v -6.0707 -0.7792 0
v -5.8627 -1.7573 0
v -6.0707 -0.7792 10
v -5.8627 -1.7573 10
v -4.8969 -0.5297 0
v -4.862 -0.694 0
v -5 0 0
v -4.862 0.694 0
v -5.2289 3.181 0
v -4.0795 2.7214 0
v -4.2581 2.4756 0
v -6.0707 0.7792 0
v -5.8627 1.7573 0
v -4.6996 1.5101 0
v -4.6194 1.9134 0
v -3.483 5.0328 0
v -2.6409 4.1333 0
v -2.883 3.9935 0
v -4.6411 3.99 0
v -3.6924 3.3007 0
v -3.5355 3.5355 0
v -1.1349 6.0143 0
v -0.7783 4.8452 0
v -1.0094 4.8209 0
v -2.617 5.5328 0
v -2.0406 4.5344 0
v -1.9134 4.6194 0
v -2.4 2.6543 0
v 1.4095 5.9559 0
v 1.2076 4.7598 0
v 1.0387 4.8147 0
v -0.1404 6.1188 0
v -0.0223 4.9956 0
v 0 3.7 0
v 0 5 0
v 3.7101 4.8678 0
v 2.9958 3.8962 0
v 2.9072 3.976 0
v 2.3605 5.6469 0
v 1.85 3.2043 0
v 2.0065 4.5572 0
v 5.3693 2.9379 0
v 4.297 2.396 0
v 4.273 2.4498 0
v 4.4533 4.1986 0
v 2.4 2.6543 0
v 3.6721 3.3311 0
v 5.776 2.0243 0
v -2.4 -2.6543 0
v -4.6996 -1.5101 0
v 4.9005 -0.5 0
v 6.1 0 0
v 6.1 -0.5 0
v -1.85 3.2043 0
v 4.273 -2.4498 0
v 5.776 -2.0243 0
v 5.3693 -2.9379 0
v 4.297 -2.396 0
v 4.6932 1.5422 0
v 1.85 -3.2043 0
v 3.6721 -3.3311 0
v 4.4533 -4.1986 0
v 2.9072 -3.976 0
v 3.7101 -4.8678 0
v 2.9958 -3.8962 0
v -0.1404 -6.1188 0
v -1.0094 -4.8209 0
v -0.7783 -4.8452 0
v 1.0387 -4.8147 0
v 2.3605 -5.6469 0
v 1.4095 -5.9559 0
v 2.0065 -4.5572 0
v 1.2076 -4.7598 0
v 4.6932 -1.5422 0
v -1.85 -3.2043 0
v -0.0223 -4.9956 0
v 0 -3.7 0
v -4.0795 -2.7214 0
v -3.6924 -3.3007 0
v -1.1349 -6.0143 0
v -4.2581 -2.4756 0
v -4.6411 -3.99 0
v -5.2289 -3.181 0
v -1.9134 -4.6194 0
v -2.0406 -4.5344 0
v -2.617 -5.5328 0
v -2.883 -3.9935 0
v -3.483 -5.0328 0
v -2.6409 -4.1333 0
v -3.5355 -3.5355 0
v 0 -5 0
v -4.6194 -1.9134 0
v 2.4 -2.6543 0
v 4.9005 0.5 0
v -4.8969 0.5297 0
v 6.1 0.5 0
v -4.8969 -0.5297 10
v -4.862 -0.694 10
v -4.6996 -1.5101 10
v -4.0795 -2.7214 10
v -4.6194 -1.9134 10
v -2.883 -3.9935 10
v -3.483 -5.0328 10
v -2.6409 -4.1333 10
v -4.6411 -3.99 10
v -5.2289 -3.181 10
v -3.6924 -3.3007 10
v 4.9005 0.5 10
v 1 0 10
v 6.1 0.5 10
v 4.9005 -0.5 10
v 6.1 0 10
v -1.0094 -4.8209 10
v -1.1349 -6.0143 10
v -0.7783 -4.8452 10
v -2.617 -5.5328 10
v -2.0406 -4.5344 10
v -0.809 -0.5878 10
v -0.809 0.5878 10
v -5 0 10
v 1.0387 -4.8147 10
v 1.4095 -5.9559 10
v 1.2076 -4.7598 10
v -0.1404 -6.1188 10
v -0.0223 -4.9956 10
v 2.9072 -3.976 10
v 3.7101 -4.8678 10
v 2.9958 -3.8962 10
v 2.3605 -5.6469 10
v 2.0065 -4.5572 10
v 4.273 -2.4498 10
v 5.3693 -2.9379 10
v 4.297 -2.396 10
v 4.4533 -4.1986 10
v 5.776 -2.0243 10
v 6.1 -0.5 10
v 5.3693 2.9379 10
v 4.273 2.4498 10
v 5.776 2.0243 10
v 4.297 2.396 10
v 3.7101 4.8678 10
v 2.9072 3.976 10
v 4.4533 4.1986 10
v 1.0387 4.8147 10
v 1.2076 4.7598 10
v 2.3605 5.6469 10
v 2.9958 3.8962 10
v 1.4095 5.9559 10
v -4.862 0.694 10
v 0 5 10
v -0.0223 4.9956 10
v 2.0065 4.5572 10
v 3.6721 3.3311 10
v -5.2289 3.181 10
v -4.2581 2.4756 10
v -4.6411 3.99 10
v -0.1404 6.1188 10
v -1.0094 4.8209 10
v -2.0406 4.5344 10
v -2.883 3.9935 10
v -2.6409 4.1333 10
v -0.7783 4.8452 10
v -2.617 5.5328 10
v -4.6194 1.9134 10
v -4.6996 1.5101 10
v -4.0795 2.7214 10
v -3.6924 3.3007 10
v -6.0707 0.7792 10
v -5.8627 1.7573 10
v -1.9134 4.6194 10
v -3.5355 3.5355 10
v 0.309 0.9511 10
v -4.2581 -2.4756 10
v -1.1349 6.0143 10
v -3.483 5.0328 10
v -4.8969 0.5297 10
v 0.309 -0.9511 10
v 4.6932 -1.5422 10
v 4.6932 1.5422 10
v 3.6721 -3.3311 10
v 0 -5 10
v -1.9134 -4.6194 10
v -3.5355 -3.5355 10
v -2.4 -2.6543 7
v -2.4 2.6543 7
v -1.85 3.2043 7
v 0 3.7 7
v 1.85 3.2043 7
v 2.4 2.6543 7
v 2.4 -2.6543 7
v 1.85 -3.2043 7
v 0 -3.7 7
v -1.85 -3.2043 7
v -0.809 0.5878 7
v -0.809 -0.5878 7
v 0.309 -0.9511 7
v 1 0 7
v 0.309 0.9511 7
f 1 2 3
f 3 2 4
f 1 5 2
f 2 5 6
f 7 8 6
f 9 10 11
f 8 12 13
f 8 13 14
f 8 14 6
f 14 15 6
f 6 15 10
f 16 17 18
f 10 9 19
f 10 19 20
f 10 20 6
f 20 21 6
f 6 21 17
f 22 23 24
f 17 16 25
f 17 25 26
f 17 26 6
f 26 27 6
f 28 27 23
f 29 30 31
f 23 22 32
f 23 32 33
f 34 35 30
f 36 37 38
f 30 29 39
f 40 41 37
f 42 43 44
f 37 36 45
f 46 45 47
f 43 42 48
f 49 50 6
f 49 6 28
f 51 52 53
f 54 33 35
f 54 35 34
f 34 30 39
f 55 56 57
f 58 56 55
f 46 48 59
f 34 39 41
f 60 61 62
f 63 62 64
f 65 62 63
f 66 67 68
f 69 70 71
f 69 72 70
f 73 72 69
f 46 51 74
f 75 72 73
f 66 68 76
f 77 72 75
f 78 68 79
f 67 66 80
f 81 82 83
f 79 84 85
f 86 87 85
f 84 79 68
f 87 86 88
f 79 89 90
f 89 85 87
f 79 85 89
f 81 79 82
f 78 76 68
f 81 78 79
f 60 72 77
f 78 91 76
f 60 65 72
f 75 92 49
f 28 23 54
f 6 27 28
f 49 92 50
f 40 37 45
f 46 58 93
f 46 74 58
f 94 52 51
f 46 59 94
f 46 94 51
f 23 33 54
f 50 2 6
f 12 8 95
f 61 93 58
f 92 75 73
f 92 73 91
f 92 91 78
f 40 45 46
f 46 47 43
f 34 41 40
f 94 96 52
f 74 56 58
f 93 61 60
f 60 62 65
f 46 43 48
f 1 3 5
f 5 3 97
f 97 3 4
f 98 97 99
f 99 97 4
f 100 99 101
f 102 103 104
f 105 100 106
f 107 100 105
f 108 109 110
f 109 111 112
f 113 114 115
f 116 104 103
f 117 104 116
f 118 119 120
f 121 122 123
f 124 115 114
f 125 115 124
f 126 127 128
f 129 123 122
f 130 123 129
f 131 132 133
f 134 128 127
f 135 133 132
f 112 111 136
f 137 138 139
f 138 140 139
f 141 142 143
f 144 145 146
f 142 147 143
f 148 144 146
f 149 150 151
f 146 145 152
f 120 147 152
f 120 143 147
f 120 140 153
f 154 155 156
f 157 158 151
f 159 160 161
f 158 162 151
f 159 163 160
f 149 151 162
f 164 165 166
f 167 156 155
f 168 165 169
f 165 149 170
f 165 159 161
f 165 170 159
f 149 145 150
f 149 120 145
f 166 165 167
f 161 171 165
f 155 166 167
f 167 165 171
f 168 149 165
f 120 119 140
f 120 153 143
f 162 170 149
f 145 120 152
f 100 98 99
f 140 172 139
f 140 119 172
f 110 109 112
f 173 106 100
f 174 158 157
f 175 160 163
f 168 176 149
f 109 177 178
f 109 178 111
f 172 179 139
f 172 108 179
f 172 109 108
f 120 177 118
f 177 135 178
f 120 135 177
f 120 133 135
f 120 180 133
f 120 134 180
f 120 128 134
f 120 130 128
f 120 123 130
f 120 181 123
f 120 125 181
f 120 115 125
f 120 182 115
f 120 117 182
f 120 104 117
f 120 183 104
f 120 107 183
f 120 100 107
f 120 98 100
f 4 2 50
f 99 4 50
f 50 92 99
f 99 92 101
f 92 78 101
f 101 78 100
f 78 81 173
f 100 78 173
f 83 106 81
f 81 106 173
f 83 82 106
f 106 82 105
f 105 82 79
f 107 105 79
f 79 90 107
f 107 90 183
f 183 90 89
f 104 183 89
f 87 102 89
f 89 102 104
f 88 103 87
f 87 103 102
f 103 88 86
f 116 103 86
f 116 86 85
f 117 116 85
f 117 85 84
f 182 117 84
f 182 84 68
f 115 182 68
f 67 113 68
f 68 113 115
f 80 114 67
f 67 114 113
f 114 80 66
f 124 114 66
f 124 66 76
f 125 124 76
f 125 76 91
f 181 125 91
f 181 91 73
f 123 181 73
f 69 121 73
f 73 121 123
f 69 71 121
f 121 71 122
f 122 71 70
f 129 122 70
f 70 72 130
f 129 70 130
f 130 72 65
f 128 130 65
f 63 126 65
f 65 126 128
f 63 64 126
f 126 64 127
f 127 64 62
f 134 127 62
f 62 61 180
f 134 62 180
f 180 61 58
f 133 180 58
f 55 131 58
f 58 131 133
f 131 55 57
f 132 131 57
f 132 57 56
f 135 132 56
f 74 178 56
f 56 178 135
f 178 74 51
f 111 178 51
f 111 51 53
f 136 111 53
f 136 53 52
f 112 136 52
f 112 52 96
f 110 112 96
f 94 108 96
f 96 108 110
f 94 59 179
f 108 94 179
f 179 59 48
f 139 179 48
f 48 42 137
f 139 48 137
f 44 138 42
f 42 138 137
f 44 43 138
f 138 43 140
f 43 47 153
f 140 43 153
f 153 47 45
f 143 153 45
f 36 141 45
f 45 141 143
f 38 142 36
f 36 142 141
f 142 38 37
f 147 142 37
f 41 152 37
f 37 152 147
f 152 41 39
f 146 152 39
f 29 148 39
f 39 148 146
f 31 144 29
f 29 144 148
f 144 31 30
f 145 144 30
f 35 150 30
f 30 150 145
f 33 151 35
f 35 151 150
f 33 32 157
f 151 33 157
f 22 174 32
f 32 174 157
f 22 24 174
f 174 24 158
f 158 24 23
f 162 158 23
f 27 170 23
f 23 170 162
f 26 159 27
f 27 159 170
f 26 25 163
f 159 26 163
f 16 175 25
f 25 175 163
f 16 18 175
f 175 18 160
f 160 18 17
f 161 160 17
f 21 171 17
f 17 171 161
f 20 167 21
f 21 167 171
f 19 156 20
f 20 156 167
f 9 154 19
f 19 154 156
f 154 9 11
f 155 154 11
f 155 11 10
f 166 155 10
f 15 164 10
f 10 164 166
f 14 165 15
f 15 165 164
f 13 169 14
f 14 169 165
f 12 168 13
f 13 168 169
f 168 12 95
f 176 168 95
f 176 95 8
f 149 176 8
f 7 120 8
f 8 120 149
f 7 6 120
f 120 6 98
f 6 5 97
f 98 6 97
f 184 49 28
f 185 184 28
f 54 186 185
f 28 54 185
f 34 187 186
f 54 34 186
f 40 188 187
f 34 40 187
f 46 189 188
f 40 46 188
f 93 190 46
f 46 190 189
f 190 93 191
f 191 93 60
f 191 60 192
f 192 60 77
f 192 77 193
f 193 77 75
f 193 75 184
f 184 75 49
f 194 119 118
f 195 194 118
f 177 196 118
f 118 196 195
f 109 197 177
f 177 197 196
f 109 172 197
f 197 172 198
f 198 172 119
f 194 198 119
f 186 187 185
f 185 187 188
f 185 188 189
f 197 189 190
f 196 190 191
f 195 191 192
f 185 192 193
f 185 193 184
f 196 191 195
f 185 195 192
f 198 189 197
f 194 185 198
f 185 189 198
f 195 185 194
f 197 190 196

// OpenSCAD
motor_gear();

module motor_gear(){
difference(){
gear();
motor_shaft();
cylinder(h=10,r=1);
}//end diff
}//end part


module gear() {
union(){
cylinder(r=5,h=10);
for(a=[0:24:360]){
rotate([0,0,a]) translate([4.9,-.5,0]) cube([1.2,1,10]);
}//end for
}//end union

}

module motor_shaft(){
difference(){
cylinder(r=3.7,h=7);
translate([5.9,0,3.5]) cube([7,7,7],center=true);
translate([-5.9,0,3.5]) cube([7,7,7],center=true);
}//end diff
}//end part
